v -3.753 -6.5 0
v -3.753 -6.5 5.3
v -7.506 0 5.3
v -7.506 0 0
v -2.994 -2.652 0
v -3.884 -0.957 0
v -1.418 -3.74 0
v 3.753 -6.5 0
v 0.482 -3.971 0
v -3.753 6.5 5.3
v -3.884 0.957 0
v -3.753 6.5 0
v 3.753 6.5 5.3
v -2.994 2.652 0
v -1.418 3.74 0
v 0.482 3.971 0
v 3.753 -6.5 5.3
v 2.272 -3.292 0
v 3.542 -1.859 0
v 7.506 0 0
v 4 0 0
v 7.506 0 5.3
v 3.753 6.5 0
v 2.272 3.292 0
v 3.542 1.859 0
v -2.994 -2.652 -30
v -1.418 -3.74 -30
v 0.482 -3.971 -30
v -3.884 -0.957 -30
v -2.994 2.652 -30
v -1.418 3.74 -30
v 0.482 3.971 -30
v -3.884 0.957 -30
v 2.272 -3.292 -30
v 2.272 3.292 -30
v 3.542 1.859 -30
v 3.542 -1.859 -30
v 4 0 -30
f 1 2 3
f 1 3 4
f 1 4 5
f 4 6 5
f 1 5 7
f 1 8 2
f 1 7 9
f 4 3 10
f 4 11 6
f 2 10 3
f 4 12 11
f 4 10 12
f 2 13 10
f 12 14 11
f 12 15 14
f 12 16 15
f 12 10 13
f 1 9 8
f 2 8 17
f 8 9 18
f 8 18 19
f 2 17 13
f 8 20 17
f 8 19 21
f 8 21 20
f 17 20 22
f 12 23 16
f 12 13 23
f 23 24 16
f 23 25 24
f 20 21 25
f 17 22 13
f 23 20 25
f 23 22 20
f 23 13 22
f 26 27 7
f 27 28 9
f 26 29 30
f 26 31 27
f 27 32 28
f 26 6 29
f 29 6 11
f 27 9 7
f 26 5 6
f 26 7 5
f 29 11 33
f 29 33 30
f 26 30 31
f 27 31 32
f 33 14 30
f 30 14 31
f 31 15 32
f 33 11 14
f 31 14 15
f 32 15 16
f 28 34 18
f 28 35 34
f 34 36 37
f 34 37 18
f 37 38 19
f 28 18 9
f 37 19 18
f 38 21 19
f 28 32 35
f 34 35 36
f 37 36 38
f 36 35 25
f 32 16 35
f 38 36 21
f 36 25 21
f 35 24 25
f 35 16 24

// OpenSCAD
module hex_bolt_m8() {
    union() {
        // Hexagonal head: across-flats = 13mm, height = 5.3mm
        cylinder(h = 5.3, r = 13/sqrt(3), $fn = 6);
        // Shank: diameter = 8mm, length = 30mm, extending into z < 0
        translate([0, 0, -30])
            cylinder(h = 30, r = 4);
    }
}

hex_bolt_m8();
